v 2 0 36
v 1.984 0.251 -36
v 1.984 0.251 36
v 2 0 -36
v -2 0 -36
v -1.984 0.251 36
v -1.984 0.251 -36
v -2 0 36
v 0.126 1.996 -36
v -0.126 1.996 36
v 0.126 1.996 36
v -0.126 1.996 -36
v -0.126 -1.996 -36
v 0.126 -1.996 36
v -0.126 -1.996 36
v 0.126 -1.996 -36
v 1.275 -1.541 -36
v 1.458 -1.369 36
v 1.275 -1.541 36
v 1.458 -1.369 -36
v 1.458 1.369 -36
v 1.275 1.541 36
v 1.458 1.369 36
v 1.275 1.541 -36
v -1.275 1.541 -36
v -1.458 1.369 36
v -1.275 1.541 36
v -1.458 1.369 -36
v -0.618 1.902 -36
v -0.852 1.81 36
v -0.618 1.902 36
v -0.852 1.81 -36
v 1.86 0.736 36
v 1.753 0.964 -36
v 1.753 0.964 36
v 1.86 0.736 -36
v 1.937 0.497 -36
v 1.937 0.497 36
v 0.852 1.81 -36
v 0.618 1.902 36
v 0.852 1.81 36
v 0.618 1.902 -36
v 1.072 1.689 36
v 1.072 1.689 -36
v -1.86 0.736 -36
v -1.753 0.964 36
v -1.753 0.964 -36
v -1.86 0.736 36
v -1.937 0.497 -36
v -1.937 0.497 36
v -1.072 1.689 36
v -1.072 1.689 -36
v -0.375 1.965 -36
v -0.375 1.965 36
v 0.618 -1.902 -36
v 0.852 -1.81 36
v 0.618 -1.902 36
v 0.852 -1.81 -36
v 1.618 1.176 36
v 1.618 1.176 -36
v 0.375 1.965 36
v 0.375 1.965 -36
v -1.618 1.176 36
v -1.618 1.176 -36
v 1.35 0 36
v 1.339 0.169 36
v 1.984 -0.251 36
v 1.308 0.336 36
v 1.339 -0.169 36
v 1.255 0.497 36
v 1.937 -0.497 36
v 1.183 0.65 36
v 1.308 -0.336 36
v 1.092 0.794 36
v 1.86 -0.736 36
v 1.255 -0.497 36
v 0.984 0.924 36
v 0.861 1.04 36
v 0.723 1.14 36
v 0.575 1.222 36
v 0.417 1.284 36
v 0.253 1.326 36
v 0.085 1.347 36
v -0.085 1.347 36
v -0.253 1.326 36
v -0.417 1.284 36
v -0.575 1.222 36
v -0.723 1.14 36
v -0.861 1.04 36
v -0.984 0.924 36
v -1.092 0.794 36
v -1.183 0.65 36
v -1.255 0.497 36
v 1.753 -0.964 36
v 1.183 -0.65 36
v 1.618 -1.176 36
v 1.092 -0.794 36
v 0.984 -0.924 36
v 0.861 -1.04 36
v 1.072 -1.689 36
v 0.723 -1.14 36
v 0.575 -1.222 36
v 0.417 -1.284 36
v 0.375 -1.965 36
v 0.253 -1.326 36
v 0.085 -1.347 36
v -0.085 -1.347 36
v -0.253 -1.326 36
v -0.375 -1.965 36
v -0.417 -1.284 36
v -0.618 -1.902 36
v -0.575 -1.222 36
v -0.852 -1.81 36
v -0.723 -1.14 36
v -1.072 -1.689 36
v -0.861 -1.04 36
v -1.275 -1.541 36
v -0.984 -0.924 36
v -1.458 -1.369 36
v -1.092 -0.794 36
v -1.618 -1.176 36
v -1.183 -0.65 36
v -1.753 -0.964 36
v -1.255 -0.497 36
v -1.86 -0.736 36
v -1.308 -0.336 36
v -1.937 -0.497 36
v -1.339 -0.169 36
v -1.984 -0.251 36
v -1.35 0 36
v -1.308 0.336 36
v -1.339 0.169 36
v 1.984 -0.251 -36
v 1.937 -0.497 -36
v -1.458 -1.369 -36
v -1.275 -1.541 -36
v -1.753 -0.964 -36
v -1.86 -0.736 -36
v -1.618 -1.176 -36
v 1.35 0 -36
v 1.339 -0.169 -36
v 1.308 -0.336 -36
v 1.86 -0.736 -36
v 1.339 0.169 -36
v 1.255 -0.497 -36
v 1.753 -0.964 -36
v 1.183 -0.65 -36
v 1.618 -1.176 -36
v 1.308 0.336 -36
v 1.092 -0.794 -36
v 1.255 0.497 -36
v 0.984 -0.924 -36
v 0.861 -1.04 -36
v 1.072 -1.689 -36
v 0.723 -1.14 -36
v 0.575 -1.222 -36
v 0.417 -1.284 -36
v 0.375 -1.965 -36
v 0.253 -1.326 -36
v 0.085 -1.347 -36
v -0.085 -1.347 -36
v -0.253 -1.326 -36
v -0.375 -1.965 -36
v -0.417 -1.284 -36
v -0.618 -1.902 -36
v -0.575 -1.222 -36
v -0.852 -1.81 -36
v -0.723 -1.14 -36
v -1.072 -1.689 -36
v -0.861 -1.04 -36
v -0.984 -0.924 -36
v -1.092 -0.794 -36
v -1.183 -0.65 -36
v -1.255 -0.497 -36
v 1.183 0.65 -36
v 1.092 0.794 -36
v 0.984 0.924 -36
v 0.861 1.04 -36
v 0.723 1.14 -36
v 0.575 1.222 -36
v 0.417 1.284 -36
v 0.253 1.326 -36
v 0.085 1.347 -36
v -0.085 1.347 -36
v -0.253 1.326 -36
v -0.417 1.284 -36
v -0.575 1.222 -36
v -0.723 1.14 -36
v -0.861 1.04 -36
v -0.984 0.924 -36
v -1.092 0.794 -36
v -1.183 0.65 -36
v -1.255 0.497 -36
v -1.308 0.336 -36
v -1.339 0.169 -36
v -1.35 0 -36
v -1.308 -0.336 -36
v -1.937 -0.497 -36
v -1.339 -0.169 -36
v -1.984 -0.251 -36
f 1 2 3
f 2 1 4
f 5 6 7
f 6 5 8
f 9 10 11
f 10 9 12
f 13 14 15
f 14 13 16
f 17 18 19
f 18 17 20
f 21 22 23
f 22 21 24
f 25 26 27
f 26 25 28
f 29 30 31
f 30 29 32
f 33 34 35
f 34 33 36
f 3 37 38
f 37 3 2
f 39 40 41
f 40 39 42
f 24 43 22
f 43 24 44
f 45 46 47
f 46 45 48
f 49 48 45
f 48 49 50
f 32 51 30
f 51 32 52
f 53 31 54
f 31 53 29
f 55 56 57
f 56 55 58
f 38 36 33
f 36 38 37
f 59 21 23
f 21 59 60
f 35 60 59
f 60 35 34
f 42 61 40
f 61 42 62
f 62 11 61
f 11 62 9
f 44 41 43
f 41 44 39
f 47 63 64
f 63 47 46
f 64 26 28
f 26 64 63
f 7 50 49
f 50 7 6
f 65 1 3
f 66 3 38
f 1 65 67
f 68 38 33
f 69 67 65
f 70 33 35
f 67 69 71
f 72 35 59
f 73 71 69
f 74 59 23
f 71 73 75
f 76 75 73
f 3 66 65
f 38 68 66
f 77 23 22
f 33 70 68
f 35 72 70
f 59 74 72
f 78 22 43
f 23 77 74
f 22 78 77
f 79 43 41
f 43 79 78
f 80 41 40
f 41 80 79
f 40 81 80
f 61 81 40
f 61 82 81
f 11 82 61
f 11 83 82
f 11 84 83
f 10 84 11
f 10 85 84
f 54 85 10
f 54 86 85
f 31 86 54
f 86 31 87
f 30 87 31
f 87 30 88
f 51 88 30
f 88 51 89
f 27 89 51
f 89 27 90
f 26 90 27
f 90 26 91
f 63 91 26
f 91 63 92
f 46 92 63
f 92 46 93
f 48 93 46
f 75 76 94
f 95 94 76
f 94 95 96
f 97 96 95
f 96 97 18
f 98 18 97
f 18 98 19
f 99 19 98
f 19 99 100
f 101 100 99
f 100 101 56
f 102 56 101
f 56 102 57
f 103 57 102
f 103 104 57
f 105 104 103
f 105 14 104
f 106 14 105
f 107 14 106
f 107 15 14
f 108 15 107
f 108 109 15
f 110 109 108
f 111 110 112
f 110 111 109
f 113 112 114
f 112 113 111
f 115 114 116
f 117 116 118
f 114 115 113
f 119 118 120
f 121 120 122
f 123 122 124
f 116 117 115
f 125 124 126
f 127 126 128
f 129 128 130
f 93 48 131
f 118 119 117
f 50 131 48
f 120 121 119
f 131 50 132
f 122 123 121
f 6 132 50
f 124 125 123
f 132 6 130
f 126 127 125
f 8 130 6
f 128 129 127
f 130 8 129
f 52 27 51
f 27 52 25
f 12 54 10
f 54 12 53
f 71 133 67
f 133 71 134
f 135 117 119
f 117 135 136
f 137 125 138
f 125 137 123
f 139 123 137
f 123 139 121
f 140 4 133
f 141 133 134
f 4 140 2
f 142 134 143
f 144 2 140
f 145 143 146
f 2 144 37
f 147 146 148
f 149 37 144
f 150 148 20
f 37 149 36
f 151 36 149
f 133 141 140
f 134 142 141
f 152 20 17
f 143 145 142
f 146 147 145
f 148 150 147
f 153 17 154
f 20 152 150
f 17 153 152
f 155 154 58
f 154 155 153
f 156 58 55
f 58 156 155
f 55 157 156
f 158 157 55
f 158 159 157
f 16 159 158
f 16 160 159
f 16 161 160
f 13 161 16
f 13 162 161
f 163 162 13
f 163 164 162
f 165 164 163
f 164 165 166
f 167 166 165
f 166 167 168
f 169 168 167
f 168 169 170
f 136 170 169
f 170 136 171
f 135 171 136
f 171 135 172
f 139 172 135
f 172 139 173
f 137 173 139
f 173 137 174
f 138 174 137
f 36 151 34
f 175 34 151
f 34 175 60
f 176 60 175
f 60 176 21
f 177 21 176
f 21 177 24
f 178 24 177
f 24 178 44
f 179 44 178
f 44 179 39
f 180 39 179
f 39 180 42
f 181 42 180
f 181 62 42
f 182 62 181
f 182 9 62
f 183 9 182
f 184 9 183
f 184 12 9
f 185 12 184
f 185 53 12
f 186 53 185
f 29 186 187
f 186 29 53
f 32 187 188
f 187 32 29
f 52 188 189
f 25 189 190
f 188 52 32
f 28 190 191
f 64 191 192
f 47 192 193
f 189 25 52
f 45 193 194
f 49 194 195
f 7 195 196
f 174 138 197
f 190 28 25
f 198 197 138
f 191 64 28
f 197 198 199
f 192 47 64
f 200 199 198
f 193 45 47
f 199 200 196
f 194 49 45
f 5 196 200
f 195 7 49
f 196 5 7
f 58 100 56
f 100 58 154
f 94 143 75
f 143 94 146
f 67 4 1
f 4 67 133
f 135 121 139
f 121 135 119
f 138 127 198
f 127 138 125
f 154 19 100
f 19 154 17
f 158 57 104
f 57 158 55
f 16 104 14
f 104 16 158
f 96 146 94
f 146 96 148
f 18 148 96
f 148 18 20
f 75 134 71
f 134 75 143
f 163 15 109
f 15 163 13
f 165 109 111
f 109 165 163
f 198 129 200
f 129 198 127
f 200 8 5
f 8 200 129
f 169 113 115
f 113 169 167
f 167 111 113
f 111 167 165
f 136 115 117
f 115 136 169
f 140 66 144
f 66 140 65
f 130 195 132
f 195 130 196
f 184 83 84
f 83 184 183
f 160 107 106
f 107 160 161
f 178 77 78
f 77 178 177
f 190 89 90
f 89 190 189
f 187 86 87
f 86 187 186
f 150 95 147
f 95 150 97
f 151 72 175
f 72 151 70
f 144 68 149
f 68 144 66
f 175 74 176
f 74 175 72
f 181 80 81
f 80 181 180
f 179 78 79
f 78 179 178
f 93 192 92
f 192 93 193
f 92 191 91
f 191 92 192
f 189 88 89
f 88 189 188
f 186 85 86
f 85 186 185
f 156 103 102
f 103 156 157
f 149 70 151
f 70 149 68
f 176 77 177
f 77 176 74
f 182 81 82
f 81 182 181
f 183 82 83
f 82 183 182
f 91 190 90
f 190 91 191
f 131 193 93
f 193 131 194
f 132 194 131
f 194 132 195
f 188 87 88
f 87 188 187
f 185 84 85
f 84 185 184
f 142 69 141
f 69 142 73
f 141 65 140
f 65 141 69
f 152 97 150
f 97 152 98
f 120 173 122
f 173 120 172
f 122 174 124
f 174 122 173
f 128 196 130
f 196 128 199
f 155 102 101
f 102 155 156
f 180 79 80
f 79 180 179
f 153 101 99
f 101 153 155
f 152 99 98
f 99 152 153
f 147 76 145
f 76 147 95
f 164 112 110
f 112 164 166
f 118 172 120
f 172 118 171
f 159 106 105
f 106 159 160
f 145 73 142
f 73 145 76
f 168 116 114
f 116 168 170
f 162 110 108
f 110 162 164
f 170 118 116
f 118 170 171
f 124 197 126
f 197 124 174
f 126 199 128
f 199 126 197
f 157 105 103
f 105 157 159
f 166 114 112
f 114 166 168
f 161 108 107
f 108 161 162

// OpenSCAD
$fn = 50;


difference() {
	union() {
		translate(v = [0, 0, -36.0000000000]) {
			cylinder(h = 72, r = 2.0000000000);
		}
	}
	union() {
		translate(v = [0, 0, -100.0000000000]) {
			cylinder(h = 200, r = 1.3500000000);
		}
	}
}
